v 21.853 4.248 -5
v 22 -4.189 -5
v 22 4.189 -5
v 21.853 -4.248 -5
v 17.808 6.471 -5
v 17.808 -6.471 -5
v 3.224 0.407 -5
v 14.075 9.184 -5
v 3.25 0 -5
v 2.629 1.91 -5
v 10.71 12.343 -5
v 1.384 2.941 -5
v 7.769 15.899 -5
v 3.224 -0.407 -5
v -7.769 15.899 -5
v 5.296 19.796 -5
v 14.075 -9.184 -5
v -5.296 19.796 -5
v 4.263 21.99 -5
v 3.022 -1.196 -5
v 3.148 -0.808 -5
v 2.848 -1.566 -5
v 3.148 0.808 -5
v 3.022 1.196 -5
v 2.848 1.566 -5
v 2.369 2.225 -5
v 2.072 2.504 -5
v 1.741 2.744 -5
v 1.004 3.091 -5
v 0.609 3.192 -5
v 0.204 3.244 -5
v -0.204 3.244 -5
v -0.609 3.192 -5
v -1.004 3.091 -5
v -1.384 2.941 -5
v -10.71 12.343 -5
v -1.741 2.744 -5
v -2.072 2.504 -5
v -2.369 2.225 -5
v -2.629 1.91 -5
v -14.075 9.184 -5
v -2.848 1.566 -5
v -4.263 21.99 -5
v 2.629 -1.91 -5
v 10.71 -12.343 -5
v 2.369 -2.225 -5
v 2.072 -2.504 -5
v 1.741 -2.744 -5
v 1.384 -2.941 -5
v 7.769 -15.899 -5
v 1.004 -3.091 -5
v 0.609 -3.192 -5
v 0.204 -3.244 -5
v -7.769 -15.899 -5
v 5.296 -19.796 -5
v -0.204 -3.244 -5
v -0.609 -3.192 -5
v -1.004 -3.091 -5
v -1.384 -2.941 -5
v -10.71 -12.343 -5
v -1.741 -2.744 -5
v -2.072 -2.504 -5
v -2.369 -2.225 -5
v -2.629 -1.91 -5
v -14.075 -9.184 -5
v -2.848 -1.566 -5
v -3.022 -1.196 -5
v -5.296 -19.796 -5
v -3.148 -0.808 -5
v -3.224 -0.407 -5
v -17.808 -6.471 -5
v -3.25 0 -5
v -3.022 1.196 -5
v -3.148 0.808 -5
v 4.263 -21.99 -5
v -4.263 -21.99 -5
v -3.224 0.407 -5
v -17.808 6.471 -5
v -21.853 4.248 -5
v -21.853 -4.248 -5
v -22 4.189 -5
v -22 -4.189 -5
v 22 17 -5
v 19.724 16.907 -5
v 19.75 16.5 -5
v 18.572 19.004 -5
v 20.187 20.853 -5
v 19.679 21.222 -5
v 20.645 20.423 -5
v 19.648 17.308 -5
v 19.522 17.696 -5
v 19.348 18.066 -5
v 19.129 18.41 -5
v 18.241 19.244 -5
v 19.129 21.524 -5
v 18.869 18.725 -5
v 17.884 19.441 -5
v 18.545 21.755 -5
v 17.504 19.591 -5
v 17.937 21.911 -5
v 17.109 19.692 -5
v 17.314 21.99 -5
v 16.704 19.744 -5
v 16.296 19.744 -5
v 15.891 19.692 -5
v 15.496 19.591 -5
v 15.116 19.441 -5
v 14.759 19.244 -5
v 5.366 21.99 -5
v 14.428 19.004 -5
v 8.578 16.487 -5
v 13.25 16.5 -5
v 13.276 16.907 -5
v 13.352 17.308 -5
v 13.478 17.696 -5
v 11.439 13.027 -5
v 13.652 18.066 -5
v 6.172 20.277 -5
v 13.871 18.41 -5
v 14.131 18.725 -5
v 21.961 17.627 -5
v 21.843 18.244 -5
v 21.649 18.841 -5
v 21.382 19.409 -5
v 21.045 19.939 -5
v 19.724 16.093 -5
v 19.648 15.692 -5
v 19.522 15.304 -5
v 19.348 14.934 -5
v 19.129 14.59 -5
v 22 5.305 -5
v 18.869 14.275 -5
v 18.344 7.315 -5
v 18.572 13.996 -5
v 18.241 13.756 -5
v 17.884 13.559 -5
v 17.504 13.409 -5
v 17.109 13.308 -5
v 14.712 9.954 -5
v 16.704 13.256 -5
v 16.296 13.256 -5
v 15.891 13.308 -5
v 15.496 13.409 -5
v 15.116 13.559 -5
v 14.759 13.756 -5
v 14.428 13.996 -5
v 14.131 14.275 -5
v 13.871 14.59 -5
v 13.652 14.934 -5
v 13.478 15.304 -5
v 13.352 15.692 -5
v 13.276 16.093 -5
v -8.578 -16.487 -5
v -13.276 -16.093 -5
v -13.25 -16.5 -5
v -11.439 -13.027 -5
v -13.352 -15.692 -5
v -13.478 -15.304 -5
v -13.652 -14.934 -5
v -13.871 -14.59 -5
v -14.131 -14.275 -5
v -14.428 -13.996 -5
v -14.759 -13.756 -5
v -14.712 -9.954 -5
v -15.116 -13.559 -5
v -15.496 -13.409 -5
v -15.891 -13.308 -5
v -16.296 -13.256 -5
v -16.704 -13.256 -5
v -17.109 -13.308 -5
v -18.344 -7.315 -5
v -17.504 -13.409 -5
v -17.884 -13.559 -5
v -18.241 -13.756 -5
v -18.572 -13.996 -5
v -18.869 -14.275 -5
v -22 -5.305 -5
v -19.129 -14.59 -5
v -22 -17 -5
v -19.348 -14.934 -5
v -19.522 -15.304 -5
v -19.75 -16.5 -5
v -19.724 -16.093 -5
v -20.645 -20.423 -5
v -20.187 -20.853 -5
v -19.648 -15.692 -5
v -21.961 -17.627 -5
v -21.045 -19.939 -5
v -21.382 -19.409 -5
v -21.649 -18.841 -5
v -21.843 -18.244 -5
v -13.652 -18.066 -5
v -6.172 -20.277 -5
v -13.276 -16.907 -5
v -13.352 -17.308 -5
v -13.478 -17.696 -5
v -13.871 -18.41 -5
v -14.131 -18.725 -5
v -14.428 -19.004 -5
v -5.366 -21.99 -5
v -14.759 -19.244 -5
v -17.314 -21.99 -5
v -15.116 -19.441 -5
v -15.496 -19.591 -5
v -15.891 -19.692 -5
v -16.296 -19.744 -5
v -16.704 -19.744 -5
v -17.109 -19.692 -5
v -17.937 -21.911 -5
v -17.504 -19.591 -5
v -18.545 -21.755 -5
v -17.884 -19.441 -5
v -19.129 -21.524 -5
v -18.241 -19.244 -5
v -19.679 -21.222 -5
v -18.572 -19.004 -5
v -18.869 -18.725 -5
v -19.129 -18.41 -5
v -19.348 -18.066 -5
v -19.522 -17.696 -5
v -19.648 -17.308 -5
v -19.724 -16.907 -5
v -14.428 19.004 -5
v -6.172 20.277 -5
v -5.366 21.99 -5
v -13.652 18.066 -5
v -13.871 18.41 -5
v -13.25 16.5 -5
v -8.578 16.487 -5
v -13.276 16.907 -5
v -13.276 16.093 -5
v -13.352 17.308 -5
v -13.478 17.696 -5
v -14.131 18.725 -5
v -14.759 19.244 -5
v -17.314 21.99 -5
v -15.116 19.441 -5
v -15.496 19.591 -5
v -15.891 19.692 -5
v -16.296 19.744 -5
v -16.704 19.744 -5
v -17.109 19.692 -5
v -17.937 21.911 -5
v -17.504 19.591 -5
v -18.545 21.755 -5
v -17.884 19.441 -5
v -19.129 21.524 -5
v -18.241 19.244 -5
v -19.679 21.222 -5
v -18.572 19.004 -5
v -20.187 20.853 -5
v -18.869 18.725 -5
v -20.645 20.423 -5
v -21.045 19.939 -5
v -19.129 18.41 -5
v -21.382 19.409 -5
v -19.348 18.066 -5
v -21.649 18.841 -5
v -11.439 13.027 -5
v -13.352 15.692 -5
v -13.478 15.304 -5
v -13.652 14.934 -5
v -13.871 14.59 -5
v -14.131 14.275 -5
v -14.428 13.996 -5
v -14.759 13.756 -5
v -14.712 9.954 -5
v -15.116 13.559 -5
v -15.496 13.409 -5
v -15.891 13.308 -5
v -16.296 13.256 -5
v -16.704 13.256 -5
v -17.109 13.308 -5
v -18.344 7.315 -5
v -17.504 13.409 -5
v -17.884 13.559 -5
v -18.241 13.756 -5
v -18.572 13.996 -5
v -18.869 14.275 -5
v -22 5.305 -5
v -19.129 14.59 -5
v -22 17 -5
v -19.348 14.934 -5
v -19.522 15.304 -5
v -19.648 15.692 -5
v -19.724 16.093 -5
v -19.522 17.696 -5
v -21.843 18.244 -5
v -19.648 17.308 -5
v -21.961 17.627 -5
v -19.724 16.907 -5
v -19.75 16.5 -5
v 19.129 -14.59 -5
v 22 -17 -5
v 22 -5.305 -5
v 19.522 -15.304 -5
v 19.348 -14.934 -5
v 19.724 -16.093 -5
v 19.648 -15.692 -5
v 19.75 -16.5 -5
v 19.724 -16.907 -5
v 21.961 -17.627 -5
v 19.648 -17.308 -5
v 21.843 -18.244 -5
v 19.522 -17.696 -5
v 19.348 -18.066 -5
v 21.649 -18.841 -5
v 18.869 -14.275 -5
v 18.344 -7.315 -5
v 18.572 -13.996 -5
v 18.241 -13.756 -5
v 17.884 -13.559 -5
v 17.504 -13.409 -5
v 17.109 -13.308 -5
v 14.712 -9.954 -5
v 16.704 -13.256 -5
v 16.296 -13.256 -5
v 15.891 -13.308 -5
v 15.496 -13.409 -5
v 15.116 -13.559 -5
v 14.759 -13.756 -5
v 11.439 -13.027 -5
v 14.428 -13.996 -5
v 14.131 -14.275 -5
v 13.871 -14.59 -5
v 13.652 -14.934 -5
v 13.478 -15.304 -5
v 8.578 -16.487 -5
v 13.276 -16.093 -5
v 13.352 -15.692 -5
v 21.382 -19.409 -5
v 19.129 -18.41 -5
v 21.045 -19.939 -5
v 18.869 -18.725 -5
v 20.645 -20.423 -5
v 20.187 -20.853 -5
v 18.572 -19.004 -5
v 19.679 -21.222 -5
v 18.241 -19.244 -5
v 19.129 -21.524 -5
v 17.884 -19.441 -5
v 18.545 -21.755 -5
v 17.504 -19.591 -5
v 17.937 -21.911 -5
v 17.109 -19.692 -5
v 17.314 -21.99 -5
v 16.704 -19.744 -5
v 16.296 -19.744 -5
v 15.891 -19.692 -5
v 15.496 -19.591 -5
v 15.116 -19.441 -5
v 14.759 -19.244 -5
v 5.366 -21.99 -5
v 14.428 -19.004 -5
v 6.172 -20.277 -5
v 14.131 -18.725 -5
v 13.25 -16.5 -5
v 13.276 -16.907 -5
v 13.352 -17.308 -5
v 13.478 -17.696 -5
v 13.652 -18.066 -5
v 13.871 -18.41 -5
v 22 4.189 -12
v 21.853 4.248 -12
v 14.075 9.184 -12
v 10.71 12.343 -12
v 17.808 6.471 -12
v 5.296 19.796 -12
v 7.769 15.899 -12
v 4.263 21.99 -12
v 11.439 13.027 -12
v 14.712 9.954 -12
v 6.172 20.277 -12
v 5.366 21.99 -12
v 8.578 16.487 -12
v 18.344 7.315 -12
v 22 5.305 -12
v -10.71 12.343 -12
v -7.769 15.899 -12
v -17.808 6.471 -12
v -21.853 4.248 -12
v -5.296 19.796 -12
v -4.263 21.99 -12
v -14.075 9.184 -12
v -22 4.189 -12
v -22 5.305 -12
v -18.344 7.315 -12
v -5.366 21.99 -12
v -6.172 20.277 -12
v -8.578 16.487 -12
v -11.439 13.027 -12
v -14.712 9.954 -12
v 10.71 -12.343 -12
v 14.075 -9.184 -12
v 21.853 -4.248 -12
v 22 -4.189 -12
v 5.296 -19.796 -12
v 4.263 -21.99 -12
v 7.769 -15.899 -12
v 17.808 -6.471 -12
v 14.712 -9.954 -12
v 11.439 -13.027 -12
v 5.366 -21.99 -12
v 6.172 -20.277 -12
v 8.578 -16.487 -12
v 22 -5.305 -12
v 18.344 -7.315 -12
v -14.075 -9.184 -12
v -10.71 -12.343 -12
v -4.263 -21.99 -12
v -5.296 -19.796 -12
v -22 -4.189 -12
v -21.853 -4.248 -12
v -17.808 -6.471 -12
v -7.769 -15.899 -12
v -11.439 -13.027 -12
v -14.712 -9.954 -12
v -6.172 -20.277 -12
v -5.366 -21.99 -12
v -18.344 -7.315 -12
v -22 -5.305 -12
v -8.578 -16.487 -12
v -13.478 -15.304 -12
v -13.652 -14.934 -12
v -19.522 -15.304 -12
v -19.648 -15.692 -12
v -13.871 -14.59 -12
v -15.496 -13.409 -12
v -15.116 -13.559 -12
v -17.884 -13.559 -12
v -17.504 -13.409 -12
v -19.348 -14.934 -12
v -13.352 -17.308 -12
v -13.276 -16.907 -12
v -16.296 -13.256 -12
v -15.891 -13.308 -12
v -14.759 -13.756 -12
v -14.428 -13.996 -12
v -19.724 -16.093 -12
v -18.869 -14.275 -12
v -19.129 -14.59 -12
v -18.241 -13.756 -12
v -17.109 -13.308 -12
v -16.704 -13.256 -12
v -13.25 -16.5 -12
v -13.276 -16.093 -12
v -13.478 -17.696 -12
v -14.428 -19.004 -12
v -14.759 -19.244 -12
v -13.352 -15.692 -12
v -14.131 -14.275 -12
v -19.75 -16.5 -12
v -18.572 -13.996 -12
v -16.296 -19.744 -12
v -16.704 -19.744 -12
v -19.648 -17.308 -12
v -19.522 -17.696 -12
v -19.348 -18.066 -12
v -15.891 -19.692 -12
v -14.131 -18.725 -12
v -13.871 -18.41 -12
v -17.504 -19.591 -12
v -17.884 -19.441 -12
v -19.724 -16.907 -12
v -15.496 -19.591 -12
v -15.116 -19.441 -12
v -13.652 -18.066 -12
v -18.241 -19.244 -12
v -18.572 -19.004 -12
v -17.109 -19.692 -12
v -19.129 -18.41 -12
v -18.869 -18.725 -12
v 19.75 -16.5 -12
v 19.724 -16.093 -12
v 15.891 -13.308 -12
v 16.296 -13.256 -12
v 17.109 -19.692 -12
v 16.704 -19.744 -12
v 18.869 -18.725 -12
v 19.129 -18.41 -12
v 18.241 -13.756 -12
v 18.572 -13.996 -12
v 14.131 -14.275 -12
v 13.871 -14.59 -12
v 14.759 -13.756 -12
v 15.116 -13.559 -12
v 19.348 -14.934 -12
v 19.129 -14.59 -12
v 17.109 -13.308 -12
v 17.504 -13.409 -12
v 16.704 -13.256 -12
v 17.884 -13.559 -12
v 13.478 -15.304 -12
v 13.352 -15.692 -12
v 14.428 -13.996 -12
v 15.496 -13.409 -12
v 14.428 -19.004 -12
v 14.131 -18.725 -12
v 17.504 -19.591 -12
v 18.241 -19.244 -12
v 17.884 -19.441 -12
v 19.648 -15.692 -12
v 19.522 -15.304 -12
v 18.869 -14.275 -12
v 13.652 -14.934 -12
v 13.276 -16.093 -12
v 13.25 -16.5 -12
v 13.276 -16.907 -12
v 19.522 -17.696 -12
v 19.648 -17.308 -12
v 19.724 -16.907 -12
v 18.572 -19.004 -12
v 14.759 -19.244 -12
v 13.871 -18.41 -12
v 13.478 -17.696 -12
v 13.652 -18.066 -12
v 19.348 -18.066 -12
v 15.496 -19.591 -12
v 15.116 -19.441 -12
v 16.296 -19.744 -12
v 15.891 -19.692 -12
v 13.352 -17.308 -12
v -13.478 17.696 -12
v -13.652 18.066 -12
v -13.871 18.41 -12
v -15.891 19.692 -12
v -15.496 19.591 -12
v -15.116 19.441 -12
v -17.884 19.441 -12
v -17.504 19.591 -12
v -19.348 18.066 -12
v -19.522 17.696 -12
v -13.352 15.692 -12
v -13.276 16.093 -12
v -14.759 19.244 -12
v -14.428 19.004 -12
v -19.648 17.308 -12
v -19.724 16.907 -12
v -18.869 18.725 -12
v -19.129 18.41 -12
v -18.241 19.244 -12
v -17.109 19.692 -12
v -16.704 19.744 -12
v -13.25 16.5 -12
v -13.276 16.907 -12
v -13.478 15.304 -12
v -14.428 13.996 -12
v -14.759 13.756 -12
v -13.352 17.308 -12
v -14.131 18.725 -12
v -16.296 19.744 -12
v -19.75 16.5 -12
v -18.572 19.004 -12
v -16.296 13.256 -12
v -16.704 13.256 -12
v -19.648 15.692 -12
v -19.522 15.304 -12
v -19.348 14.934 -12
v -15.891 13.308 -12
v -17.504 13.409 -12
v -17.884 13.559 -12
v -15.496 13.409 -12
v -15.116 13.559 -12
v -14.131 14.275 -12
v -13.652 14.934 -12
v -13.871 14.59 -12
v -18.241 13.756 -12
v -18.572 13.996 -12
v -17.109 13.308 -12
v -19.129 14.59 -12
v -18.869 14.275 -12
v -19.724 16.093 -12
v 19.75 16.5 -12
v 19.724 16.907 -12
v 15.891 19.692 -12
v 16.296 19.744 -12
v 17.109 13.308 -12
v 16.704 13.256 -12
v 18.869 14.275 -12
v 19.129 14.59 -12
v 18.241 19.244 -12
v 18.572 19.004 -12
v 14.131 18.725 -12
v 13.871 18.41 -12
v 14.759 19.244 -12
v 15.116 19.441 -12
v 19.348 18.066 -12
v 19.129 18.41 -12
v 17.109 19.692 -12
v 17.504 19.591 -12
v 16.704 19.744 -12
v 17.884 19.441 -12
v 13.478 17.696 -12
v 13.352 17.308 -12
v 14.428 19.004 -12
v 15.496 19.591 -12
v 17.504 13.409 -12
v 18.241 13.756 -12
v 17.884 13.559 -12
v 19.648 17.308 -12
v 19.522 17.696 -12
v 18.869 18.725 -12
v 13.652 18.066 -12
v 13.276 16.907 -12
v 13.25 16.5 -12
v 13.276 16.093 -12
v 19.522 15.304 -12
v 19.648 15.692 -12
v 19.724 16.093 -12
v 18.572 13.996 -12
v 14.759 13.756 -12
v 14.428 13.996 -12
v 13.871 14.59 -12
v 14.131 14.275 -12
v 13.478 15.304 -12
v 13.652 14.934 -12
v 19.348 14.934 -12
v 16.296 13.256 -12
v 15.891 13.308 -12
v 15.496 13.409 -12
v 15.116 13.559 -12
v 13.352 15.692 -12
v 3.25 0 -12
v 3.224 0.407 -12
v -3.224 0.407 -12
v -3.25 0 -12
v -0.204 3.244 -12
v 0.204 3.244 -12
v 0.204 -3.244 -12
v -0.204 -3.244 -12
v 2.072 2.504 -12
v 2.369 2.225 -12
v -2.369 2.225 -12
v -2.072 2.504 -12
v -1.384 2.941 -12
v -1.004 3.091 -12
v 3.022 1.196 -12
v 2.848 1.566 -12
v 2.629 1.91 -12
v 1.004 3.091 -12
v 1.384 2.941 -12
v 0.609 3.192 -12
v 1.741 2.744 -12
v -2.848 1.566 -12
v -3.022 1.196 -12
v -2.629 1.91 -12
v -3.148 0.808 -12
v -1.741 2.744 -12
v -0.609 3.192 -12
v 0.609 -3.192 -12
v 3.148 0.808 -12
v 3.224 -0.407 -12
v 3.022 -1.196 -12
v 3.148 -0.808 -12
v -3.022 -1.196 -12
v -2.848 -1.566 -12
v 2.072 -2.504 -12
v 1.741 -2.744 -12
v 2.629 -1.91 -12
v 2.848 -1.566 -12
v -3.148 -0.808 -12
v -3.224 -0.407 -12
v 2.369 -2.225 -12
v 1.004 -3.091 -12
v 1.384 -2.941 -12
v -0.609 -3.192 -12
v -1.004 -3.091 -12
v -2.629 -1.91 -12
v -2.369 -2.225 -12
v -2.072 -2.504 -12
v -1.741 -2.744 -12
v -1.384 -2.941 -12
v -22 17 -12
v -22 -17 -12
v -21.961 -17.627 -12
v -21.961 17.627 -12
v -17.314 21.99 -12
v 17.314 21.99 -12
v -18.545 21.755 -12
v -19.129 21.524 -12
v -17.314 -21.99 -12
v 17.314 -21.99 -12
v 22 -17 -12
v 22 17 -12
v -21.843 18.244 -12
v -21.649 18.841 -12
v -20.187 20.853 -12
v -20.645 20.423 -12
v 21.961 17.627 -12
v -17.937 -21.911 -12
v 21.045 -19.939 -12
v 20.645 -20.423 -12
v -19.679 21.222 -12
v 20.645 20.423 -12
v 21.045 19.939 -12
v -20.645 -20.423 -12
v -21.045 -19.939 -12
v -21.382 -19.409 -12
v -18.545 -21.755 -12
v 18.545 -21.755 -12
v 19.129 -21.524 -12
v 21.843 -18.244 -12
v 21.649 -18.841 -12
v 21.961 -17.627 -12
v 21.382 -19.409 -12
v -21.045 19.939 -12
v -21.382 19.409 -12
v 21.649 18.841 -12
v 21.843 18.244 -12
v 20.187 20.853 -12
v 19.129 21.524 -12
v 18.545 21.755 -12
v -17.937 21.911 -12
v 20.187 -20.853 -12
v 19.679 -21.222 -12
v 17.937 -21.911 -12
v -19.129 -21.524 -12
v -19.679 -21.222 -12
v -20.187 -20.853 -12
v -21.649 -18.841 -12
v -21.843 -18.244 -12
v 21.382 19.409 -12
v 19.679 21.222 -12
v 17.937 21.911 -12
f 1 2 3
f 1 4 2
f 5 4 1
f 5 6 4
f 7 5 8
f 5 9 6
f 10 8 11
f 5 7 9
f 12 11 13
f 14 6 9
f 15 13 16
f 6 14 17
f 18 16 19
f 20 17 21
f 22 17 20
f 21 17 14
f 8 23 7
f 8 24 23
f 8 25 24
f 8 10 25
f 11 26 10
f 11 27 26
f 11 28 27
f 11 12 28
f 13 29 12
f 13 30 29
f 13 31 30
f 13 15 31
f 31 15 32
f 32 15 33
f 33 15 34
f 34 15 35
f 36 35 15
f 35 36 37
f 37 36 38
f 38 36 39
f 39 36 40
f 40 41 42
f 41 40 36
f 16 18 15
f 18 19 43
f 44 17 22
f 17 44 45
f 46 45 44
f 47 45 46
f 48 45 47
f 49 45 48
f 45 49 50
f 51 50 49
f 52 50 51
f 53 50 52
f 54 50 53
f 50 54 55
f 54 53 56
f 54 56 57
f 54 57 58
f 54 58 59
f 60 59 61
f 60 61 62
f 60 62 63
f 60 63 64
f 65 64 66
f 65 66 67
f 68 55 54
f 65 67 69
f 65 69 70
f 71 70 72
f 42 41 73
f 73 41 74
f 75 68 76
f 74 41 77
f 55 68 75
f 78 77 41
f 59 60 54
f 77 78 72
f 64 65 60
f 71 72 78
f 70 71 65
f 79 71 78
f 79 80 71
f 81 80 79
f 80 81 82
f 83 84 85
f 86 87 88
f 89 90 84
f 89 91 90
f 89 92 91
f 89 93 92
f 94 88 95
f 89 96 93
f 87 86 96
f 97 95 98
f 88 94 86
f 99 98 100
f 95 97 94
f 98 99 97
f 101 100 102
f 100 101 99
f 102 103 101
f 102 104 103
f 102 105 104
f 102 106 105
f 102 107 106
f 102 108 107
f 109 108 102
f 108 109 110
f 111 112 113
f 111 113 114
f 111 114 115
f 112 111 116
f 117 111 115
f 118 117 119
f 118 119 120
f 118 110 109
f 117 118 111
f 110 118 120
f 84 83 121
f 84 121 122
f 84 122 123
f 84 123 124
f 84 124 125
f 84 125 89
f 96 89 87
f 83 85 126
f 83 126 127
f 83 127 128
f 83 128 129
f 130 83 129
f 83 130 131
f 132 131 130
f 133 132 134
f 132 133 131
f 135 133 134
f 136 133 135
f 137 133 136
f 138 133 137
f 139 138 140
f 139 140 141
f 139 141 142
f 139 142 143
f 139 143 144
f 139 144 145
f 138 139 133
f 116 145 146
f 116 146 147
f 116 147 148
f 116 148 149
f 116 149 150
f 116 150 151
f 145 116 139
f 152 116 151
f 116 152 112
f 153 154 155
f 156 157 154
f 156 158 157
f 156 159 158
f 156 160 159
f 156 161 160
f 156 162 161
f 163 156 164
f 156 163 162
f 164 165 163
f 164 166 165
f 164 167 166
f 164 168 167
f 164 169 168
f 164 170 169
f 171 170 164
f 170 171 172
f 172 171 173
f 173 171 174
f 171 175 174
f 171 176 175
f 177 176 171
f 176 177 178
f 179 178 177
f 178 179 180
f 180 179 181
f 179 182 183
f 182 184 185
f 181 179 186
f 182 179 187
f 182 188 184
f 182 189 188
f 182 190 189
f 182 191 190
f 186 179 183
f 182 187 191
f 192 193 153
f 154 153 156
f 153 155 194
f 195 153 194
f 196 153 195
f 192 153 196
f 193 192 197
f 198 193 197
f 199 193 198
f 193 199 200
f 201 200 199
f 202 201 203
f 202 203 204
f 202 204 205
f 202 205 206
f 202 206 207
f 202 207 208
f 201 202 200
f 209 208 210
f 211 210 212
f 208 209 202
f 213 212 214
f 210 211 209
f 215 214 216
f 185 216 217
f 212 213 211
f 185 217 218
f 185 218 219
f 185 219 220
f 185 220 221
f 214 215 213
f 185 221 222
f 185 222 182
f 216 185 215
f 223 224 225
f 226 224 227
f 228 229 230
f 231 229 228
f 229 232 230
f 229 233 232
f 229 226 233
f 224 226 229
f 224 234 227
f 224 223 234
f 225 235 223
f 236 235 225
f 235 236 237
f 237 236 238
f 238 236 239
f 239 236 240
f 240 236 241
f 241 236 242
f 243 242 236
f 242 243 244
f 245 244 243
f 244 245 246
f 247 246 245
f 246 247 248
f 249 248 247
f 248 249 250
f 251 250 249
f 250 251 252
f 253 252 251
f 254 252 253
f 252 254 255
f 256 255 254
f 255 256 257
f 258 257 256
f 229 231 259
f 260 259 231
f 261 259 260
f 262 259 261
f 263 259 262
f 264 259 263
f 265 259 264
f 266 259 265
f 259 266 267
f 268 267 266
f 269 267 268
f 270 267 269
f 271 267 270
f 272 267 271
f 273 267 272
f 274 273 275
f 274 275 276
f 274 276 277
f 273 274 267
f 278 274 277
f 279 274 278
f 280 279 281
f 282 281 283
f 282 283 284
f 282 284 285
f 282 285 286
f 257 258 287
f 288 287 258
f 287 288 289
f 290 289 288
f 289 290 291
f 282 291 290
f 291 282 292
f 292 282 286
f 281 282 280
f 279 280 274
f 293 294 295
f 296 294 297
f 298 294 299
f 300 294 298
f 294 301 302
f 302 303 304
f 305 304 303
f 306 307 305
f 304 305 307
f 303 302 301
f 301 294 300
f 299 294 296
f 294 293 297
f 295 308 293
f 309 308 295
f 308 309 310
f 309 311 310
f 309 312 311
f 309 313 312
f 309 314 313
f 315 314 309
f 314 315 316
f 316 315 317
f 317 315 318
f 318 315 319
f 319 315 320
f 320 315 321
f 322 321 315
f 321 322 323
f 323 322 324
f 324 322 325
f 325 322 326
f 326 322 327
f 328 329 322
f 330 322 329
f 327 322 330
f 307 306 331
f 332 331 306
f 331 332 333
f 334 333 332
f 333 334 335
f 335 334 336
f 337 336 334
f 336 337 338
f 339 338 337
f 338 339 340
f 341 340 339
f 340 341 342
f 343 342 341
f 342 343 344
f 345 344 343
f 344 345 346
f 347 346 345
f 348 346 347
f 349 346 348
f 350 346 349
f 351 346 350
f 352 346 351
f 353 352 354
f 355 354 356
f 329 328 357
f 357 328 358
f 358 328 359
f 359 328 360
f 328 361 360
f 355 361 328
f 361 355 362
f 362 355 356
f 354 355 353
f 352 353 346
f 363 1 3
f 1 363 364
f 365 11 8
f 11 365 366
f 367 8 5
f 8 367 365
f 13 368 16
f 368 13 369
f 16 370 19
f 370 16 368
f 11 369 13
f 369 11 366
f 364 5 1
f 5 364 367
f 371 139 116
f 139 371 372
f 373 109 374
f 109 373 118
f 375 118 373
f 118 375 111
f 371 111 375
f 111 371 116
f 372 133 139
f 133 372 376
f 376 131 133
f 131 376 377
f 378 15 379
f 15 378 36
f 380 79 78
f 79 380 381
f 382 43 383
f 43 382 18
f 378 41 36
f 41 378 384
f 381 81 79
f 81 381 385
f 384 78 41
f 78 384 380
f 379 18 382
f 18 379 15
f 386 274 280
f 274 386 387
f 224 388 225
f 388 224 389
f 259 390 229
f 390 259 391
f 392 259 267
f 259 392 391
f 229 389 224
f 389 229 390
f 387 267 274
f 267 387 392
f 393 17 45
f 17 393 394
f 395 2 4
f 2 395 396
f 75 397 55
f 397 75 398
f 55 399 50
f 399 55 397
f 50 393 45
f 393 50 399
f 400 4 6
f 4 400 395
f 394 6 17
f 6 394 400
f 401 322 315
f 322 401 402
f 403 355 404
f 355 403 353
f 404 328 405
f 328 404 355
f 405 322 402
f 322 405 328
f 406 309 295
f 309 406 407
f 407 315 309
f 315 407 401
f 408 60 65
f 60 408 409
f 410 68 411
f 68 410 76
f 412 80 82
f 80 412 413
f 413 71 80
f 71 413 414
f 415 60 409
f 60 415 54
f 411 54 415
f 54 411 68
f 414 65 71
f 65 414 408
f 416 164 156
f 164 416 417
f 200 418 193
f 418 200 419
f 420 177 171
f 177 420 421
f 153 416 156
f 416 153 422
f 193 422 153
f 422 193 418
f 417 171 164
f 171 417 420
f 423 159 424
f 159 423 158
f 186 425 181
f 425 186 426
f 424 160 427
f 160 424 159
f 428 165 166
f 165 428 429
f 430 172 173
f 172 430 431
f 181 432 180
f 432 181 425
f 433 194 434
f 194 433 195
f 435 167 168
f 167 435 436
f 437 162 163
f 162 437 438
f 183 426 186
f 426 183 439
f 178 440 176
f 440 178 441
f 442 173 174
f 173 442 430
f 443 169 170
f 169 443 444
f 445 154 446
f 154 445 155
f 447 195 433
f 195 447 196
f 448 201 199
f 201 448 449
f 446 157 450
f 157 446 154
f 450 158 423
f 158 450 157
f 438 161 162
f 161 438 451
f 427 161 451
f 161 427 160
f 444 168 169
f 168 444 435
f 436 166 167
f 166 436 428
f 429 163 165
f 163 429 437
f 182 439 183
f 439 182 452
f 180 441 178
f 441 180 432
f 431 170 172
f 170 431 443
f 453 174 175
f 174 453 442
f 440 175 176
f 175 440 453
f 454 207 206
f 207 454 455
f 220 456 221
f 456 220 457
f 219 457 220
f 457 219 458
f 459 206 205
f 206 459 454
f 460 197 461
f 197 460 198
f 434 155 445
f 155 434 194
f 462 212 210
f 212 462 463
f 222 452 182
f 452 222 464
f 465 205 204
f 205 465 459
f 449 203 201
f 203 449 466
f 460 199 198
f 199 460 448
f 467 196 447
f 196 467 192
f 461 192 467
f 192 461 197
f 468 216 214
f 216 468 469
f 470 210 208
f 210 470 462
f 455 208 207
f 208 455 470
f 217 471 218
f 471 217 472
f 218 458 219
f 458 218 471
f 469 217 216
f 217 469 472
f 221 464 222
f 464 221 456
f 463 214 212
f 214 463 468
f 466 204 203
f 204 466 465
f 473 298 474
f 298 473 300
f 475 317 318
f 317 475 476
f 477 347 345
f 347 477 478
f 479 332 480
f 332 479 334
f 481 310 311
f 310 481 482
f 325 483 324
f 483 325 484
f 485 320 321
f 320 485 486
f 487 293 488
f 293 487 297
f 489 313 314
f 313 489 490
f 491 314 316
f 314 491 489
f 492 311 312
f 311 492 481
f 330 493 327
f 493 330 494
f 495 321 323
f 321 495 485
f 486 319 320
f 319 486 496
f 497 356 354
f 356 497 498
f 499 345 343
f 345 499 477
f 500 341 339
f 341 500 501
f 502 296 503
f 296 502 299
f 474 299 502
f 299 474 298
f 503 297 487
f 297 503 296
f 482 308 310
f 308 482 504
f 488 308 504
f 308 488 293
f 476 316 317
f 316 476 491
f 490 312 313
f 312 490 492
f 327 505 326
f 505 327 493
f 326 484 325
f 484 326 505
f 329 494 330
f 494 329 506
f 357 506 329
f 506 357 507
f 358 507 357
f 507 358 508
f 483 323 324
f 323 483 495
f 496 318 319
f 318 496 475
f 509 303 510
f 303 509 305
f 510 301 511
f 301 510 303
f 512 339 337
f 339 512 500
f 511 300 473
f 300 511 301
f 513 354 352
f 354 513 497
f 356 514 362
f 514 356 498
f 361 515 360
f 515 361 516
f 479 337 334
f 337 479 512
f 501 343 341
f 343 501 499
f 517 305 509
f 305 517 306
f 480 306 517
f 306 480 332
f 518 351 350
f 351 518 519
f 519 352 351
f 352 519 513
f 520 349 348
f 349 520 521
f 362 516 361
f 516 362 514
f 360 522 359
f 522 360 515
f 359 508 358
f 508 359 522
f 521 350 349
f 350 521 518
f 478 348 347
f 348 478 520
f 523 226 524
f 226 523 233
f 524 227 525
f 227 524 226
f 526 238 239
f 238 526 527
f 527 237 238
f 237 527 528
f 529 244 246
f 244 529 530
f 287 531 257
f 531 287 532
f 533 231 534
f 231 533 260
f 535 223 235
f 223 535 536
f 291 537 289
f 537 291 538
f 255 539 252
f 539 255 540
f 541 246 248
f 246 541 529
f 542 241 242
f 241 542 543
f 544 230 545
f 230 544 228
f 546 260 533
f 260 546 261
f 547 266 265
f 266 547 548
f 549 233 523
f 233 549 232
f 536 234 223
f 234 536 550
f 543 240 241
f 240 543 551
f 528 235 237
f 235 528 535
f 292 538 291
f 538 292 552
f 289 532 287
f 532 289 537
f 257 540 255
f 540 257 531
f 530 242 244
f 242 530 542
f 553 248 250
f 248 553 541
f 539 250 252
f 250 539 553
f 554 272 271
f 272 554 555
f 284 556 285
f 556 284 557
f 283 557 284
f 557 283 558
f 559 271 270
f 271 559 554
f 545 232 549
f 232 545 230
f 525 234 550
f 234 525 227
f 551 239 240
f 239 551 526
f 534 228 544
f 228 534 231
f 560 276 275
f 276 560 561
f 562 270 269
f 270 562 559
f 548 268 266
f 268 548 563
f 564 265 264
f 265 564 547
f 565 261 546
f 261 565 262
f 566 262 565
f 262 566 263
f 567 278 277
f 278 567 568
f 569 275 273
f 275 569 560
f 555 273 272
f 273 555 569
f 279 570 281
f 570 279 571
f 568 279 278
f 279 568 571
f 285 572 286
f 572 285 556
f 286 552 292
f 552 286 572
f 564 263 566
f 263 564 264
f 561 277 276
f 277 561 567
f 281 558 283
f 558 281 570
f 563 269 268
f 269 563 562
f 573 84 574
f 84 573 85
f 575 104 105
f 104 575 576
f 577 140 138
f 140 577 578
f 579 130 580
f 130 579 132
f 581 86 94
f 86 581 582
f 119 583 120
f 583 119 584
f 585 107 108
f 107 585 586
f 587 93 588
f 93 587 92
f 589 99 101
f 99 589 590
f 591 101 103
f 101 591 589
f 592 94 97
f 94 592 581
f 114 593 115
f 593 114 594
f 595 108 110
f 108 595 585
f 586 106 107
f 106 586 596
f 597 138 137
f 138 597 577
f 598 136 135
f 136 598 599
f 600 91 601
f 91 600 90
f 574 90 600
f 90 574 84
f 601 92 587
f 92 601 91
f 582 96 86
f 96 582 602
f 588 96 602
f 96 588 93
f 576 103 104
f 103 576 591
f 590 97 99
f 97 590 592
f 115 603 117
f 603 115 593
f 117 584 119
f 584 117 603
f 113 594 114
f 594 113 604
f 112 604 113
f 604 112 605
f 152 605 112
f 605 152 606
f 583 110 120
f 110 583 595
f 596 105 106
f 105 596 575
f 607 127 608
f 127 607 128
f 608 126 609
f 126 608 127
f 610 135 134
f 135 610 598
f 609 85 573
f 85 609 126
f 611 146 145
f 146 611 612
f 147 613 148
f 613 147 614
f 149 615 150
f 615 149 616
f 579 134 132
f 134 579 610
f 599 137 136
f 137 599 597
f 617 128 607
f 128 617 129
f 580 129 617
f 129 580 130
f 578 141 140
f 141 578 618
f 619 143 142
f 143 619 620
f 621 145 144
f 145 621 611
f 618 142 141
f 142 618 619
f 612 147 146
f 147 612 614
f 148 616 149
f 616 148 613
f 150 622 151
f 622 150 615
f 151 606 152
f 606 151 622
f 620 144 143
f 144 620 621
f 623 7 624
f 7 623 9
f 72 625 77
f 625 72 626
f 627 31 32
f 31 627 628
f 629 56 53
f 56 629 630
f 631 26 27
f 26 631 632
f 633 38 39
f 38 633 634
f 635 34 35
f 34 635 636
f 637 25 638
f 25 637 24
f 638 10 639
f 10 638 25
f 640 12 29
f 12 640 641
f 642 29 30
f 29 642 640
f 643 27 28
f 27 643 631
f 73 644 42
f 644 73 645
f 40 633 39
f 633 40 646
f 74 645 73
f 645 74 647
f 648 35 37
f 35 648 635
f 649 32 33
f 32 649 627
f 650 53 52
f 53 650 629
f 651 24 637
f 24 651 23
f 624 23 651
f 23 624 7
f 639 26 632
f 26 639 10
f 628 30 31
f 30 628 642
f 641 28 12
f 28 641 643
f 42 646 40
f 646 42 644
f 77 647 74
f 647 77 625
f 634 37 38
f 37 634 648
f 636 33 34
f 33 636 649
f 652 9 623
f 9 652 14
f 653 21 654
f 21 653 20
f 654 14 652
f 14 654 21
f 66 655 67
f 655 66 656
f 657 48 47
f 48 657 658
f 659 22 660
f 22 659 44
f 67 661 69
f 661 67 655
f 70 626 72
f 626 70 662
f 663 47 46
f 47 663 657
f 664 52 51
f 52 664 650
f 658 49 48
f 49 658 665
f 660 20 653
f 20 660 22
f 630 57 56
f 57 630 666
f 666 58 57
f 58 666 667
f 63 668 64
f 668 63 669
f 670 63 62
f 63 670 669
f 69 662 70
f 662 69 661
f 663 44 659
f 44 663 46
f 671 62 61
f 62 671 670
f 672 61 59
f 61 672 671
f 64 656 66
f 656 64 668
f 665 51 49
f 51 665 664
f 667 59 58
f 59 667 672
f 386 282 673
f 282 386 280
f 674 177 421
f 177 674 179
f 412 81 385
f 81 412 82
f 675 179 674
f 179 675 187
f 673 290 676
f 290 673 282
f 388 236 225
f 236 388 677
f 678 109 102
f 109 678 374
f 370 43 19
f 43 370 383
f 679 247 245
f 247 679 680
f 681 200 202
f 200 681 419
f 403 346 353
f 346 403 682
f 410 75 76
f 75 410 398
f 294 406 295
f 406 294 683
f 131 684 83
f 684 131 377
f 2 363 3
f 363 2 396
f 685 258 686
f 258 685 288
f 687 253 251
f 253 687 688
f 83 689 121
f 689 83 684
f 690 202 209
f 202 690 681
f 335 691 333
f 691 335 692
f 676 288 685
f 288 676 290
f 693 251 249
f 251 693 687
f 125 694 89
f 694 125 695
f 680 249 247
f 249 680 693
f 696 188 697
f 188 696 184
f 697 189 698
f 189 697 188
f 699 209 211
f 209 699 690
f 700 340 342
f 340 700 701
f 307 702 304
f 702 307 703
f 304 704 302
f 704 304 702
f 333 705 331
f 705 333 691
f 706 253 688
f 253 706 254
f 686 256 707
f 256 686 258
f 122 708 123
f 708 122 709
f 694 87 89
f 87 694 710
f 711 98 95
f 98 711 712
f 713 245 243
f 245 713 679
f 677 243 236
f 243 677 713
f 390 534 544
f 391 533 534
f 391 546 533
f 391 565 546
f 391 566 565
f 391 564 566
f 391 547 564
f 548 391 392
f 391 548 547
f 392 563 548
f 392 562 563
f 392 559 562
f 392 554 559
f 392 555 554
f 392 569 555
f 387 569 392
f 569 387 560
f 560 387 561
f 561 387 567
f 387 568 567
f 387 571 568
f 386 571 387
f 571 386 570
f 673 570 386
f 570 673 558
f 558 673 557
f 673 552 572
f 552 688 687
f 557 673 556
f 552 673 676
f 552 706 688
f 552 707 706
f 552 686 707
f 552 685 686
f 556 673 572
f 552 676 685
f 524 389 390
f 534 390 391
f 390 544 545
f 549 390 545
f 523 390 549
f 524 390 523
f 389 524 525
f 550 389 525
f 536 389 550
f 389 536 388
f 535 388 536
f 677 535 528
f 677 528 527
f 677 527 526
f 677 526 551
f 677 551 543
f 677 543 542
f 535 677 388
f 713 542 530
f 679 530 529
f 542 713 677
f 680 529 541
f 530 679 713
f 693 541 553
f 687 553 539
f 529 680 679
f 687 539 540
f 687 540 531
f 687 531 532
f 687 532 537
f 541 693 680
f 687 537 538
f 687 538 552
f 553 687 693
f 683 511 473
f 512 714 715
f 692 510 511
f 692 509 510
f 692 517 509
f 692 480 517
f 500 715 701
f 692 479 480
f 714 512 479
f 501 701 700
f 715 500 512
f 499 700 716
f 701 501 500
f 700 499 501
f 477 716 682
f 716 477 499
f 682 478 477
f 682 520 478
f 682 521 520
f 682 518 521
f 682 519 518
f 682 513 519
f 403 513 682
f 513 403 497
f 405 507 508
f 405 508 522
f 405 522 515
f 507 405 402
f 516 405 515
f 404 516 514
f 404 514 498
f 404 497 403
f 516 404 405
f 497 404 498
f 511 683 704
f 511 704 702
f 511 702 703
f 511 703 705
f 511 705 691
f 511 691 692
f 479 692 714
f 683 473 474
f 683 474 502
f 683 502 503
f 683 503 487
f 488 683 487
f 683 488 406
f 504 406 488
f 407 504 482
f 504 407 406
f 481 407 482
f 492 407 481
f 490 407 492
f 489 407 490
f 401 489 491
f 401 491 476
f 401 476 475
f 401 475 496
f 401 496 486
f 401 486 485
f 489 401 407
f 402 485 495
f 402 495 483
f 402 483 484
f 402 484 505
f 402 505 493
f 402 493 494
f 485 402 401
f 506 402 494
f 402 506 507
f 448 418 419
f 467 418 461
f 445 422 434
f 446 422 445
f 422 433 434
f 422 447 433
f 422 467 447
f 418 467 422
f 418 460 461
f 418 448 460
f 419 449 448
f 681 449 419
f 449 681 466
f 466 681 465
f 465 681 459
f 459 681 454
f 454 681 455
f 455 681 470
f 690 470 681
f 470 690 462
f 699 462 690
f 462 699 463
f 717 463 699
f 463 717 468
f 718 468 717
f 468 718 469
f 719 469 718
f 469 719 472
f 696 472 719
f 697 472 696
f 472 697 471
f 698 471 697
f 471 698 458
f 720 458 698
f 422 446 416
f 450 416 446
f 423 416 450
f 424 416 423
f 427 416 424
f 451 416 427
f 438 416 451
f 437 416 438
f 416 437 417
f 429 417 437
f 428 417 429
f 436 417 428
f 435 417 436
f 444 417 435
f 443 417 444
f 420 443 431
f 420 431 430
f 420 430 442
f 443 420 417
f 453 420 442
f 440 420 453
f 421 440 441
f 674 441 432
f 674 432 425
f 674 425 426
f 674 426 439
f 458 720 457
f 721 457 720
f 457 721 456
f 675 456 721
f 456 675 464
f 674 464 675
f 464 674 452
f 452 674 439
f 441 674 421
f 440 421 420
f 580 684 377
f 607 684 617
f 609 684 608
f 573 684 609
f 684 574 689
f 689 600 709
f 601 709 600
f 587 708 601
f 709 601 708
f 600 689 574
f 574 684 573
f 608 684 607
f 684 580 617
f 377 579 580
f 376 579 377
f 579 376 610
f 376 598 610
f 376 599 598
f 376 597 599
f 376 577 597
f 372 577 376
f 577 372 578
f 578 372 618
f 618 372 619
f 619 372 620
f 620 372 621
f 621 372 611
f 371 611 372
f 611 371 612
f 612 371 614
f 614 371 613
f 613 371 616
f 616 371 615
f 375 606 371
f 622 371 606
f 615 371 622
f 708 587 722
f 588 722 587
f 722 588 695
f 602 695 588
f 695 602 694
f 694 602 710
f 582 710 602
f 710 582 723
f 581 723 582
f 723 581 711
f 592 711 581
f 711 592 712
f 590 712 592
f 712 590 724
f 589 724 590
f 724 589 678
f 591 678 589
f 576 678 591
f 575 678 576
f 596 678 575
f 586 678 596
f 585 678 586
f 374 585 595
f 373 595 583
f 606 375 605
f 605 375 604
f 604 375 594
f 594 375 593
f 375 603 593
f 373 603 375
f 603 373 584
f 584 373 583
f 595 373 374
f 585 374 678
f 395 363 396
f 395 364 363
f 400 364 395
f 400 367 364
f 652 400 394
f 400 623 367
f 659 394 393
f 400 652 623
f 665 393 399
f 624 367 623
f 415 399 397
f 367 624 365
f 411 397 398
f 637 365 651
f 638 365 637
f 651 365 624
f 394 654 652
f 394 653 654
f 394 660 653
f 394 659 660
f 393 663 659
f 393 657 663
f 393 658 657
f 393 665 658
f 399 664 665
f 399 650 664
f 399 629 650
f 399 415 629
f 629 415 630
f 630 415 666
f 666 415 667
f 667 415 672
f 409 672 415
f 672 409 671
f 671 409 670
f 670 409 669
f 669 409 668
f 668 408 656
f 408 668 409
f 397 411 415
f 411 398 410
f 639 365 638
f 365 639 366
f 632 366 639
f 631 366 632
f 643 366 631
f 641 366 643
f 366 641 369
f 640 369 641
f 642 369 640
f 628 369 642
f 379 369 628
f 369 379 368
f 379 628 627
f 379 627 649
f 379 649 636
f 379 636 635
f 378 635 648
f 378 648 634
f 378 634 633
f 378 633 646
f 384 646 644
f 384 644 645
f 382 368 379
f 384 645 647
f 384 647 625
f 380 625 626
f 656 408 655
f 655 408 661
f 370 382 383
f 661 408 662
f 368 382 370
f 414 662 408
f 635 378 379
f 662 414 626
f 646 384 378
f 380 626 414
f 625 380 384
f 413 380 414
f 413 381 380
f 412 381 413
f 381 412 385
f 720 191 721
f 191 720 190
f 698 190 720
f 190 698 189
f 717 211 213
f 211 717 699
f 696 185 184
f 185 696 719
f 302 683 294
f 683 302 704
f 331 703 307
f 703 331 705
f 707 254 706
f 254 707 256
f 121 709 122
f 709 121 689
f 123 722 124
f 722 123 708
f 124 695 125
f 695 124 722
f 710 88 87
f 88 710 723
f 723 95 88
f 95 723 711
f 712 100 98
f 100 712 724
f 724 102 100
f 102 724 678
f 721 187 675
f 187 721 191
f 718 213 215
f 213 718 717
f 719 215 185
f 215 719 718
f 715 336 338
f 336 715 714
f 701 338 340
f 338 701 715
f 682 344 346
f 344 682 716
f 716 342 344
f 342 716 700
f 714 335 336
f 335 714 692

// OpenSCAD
$fn = 50;


difference() {
	union() {
		translate(v = [0, 0, -12]) {
			hull() {
				translate(v = [-17.0000000000, 17.0000000000, 0]) {
					cylinder(h = 15, r = 5);
				}
				translate(v = [17.0000000000, 17.0000000000, 0]) {
					cylinder(h = 15, r = 5);
				}
				translate(v = [-17.0000000000, -17.0000000000, 0]) {
					cylinder(h = 15, r = 5);
				}
				translate(v = [17.0000000000, -17.0000000000, 0]) {
					cylinder(h = 15, r = 5);
				}
			}
		}
	}
	union() {
		translate(v = [37.5000000000, 37.5000000000, -5]) {
			rotate(a = [0, 0, 0]) {
				difference() {
					union() {
						cylinder(h = 5, r = 37.7500000000);
					}
					union() {
						cylinder(h = 5, r = 36.7500000000);
					}
				}
			}
		}
		#translate(v = [37.5000000000, 37.5000000000, -5]) {
			rotate(a = [0, 0, 0]) {
				difference() {
					union() {
						cylinder(h = 1, r = 36.7500000000);
					}
					union() {
						cylinder(h = 1, r = 33.7500000000);
					}
				}
			}
		}
		translate(v = [37.5000000000, 37.5000000000, -106]) {
			rotate(a = [0, 0, 0]) {
				difference() {
					union() {
						cylinder(h = 101, r = 36.7500000000);
					}
					union() {
						cylinder(h = 101, r = 35.7500000000);
					}
				}
			}
		}
		translate(v = [37.5000000000, 37.5000000000, -109]) {
			rotate(a = [0, 0, 0]) {
				difference() {
					union() {
						cylinder(h = 3, r = 36.7500000000);
					}
					union() {
						cylinder(h = 3, r = 35.7500000000);
					}
				}
			}
		}
		translate(v = [-37.5000000000, 37.5000000000, -5]) {
			rotate(a = [0, 0, 0]) {
				difference() {
					union() {
						cylinder(h = 5, r = 37.7500000000);
					}
					union() {
						cylinder(h = 5, r = 36.7500000000);
					}
				}
			}
		}
		#translate(v = [-37.5000000000, 37.5000000000, -5]) {
			rotate(a = [0, 0, 0]) {
				difference() {
					union() {
						cylinder(h = 1, r = 36.7500000000);
					}
					union() {
						cylinder(h = 1, r = 33.7500000000);
					}
				}
			}
		}
		translate(v = [-37.5000000000, 37.5000000000, -106]) {
			rotate(a = [0, 0, 0]) {
				difference() {
					union() {
						cylinder(h = 101, r = 36.7500000000);
					}
					union() {
						cylinder(h = 101, r = 35.7500000000);
					}
				}
			}
		}
		translate(v = [-37.5000000000, 37.5000000000, -109]) {
			rotate(a = [0, 0, 0]) {
				difference() {
					union() {
						cylinder(h = 3, r = 36.7500000000);
					}
					union() {
						cylinder(h = 3, r = 35.7500000000);
					}
				}
			}
		}
		translate(v = [37.5000000000, -37.5000000000, -5]) {
			rotate(a = [0, 0, 0]) {
				difference() {
					union() {
						cylinder(h = 5, r = 37.7500000000);
					}
					union() {
						cylinder(h = 5, r = 36.7500000000);
					}
				}
			}
		}
		#translate(v = [37.5000000000, -37.5000000000, -5]) {
			rotate(a = [0, 0, 0]) {
				difference() {
					union() {
						cylinder(h = 1, r = 36.7500000000);
					}
					union() {
						cylinder(h = 1, r = 33.7500000000);
					}
				}
			}
		}
		translate(v = [37.5000000000, -37.5000000000, -106]) {
			rotate(a = [0, 0, 0]) {
				difference() {
					union() {
						cylinder(h = 101, r = 36.7500000000);
					}
					union() {
						cylinder(h = 101, r = 35.7500000000);
					}
				}
			}
		}
		translate(v = [37.5000000000, -37.5000000000, -109]) {
			rotate(a = [0, 0, 0]) {
				difference() {
					union() {
						cylinder(h = 3, r = 36.7500000000);
					}
					union() {
						cylinder(h = 3, r = 35.7500000000);
					}
				}
			}
		}
		translate(v = [-37.5000000000, -37.5000000000, -5]) {
			rotate(a = [0, 0, 0]) {
				difference() {
					union() {
						cylinder(h = 5, r = 37.7500000000);
					}
					union() {
						cylinder(h = 5, r = 36.7500000000);
					}
				}
			}
		}
		#translate(v = [-37.5000000000, -37.5000000000, -5]) {
			rotate(a = [0, 0, 0]) {
				difference() {
					union() {
						cylinder(h = 1, r = 36.7500000000);
					}
					union() {
						cylinder(h = 1, r = 33.7500000000);
					}
				}
			}
		}
		translate(v = [-37.5000000000, -37.5000000000, -106]) {
			rotate(a = [0, 0, 0]) {
				difference() {
					union() {
						cylinder(h = 101, r = 36.7500000000);
					}
					union() {
						cylinder(h = 101, r = 35.7500000000);
					}
				}
			}
		}
		translate(v = [-37.5000000000, -37.5000000000, -109]) {
			rotate(a = [0, 0, 0]) {
				difference() {
					union() {
						cylinder(h = 3, r = 36.7500000000);
					}
					union() {
						cylinder(h = 3, r = 35.7500000000);
					}
				}
			}
		}
		translate(v = [37.5000000000, 37.5000000000, -106.5000000000]) {
			cylinder(h = 1, r = 36.7500000000);
		}
		translate(v = [-37.5000000000, 37.5000000000, -106.5000000000]) {
			cylinder(h = 1, r = 36.7500000000);
		}
		translate(v = [37.5000000000, -37.5000000000, -106.5000000000]) {
			cylinder(h = 1, r = 36.7500000000);
		}
		translate(v = [-37.5000000000, -37.5000000000, -106.5000000000]) {
			cylinder(h = 1, r = 36.7500000000);
		}
		translate(v = [-16.5000000000, -16.5000000000, -125.0000000000]) {
			cylinder(h = 250, r = 3.2500000000);
		}
		translate(v = [16.5000000000, -16.5000000000, -125.0000000000]) {
			cylinder(h = 250, r = 3.2500000000);
		}
		translate(v = [-16.5000000000, 16.5000000000, -125.0000000000]) {
			cylinder(h = 250, r = 3.2500000000);
		}
		translate(v = [16.5000000000, 16.5000000000, -125.0000000000]) {
			cylinder(h = 250, r = 3.2500000000);
		}
		translate(v = [0.0000000000, 0.0000000000, -125.0000000000]) {
			cylinder(h = 250, r = 3.2500000000);
		}
		translate(v = [-250.0000000000, -250.0000000000, -5]) {
			cube(size = [500, 500, 500]);
		}
		translate(v = [-250.0000000000, -250.0000000000, -5]) {
			cube(size = [500, 500, 500]);
		}
		translate(v = [-250.0000000000, -250.0000000000, -5]) {
			cube(size = [500, 500, 500]);
		}
	}
}
